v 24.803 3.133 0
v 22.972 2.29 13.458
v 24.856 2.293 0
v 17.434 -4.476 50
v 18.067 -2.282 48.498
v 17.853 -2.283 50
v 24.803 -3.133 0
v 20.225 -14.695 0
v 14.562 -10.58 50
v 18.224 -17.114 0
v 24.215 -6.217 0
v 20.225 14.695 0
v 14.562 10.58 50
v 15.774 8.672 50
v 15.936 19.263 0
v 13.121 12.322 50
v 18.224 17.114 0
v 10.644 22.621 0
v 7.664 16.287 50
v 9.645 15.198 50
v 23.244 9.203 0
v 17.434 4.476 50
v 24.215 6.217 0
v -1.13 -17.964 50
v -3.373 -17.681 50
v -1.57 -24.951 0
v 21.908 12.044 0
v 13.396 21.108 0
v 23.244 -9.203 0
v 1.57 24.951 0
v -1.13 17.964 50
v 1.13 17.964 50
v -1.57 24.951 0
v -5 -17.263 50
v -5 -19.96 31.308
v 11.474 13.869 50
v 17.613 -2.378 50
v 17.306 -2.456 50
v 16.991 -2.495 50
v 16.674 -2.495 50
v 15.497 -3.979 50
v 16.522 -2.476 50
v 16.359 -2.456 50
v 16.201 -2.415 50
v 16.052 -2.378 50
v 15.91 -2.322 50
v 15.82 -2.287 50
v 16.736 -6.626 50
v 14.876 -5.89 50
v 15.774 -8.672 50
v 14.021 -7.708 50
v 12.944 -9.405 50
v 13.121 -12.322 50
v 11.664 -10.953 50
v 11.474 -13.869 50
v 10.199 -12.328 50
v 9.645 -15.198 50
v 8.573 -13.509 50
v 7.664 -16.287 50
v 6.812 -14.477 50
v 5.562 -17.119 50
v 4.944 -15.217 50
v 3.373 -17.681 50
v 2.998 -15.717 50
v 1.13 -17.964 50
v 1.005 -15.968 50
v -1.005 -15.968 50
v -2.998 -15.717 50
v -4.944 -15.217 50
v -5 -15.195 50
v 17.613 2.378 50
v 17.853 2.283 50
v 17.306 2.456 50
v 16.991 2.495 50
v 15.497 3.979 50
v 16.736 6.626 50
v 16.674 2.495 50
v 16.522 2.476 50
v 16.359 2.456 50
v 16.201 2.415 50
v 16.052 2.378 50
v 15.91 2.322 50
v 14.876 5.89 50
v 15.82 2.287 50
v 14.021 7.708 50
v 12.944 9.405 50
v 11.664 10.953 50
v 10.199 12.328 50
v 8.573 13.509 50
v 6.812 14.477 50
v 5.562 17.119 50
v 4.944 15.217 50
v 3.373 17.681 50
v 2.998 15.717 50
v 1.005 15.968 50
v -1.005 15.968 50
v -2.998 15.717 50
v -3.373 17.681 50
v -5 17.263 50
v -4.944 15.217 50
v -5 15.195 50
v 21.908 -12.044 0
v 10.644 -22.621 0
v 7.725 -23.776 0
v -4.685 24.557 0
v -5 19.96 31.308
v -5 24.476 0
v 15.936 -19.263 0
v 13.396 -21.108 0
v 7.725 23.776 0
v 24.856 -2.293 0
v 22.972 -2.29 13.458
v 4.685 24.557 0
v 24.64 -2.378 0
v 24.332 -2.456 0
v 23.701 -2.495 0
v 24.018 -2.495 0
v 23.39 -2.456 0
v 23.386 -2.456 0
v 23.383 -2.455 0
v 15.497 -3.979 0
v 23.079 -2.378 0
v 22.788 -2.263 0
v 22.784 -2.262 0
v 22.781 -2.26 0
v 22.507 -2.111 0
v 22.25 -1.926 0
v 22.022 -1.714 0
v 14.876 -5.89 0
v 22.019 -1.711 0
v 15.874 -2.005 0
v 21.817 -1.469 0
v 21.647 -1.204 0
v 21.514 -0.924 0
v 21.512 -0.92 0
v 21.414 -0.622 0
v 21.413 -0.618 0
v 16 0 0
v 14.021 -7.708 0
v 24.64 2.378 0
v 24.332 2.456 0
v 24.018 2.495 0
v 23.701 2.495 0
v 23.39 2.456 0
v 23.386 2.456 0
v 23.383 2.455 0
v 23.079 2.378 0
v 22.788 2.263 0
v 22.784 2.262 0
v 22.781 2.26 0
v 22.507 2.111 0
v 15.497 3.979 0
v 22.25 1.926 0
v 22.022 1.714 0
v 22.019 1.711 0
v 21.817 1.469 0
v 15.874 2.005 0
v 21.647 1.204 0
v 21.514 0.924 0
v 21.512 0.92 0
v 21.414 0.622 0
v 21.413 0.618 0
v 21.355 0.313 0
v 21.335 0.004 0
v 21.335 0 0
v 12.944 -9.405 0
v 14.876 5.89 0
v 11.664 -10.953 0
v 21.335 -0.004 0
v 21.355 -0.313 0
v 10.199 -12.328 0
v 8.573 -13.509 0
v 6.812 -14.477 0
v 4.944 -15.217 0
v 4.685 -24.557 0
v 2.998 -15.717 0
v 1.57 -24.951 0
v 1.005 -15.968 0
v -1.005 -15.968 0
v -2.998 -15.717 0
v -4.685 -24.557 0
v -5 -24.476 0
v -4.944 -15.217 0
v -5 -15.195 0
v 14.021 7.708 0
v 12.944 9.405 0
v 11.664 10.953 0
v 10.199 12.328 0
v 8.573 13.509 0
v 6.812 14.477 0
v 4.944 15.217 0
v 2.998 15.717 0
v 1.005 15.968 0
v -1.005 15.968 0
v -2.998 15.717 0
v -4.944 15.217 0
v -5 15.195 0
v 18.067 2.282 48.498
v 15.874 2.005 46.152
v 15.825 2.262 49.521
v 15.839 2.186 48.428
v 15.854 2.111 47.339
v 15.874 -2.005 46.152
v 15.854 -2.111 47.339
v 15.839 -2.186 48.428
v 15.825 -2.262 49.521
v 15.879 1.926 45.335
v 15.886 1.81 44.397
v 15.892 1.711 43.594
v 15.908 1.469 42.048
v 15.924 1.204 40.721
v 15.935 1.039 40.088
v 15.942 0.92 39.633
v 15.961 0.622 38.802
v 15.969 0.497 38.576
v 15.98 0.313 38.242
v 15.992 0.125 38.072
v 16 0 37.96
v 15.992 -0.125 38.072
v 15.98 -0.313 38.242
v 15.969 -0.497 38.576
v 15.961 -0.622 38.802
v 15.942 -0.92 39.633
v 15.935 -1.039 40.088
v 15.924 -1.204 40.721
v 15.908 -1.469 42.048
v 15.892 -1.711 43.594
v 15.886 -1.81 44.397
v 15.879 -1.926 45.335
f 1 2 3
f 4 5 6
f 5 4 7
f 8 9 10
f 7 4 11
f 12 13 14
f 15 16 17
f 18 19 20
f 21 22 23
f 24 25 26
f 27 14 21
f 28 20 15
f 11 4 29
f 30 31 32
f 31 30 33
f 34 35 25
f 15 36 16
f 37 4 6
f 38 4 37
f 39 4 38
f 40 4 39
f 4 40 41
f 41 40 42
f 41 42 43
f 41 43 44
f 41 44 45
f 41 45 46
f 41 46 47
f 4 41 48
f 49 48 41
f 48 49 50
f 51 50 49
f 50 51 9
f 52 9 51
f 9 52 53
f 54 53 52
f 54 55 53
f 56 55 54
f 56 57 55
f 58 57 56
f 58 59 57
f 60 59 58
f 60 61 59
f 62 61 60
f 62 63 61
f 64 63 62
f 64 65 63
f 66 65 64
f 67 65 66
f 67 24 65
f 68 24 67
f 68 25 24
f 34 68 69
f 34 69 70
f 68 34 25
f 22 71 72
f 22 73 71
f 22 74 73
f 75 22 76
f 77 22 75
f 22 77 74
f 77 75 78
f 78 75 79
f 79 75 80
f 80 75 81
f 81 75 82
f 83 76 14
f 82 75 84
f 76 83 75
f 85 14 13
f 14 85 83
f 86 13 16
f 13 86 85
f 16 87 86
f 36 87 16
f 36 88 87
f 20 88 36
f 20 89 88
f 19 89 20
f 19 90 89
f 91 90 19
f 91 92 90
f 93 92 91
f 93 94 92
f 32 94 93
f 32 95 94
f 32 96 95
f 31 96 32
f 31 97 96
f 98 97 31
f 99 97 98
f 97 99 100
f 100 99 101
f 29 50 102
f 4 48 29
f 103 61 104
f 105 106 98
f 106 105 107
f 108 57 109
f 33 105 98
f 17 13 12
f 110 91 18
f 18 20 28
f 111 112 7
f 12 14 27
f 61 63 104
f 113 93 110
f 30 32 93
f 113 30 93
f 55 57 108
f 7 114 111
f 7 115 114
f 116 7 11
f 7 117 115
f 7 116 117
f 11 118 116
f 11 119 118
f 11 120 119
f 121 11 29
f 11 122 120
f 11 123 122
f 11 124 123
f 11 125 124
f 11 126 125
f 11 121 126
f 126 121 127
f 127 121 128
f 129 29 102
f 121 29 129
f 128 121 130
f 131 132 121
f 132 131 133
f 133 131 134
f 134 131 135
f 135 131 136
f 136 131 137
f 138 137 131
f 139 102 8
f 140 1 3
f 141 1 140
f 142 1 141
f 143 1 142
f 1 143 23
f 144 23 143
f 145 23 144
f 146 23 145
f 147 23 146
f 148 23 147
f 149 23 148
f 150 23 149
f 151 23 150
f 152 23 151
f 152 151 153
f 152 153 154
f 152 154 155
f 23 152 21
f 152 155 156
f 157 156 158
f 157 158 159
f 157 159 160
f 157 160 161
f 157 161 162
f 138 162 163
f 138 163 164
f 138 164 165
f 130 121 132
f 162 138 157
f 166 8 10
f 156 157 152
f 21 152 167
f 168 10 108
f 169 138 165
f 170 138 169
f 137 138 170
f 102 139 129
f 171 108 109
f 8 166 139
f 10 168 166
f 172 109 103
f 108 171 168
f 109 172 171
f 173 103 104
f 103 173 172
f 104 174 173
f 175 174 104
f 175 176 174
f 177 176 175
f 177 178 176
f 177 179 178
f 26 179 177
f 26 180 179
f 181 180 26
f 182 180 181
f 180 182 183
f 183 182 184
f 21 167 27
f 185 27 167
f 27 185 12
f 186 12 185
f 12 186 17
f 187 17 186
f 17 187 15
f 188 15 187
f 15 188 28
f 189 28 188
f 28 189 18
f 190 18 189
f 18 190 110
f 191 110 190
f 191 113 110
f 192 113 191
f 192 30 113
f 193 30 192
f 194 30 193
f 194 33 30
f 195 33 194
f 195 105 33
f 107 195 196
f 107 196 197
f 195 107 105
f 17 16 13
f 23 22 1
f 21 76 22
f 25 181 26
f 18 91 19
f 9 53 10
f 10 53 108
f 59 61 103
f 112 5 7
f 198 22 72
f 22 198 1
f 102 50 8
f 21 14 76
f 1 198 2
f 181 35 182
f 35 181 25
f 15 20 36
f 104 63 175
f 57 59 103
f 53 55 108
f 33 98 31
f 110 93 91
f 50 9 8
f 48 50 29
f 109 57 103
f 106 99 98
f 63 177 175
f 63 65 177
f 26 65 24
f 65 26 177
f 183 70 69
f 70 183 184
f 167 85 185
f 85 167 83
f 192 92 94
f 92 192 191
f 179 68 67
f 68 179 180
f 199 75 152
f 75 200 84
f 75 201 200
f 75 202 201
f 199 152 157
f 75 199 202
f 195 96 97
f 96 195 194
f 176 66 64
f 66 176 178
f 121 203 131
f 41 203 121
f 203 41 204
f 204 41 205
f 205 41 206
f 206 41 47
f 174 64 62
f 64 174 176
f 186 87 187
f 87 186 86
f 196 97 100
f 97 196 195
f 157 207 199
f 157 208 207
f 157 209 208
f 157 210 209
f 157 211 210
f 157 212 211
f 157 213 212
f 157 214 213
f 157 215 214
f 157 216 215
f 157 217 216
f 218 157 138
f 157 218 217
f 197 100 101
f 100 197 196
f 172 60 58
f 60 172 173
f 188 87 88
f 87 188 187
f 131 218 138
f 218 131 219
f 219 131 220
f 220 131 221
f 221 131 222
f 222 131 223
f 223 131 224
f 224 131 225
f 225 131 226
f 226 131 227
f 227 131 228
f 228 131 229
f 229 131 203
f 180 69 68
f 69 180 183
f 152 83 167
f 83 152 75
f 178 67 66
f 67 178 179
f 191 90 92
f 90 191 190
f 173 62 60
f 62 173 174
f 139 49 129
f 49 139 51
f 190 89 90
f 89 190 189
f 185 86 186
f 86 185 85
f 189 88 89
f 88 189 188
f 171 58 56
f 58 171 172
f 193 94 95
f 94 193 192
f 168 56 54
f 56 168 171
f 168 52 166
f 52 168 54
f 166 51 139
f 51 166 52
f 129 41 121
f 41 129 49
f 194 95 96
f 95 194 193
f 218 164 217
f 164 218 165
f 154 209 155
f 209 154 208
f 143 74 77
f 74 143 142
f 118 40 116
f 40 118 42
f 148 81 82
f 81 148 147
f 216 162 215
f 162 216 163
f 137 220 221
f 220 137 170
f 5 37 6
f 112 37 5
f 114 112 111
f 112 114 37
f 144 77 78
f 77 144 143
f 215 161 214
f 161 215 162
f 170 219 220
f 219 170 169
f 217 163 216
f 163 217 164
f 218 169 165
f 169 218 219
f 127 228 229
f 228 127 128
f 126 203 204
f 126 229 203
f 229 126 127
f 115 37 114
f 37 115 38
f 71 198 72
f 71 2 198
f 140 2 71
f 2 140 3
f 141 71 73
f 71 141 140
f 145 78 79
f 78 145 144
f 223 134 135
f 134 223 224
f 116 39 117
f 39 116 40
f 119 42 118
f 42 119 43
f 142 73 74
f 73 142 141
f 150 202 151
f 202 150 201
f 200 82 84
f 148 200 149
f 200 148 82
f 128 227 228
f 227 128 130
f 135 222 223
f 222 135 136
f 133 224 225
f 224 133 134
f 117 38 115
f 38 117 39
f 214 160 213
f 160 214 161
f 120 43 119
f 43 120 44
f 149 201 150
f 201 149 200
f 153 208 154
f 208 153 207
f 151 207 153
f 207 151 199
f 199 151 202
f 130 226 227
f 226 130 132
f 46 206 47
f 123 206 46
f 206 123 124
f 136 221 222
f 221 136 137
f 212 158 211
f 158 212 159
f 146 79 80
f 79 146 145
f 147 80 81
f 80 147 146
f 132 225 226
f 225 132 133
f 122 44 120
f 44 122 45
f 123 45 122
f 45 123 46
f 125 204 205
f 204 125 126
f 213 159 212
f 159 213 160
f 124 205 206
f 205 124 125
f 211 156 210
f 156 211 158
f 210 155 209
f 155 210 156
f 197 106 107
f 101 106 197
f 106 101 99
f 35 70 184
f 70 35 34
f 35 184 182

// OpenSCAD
$fn=50;

BAR_DIAM = 32;
CABLE_DIAM = 5;
coff=2;
offset = CABLE_DIAM*2+coff;
LEN=50;


module main() {
    difference() {
        cylinder(h=LEN,r1=BAR_DIAM/2+offset-3,r2=BAR_DIAM/2+coff);
        cylinder(LEN,d=BAR_DIAM);
        #translate([offset+12,0,-1]) rotate([0,-8,0]) cylinder(LEN*2,d=CABLE_DIAM);
        #translate([-LEN*2-5,-LEN,0]) cube([LEN*2,LEN*2,LEN]);
    }
}


main();
